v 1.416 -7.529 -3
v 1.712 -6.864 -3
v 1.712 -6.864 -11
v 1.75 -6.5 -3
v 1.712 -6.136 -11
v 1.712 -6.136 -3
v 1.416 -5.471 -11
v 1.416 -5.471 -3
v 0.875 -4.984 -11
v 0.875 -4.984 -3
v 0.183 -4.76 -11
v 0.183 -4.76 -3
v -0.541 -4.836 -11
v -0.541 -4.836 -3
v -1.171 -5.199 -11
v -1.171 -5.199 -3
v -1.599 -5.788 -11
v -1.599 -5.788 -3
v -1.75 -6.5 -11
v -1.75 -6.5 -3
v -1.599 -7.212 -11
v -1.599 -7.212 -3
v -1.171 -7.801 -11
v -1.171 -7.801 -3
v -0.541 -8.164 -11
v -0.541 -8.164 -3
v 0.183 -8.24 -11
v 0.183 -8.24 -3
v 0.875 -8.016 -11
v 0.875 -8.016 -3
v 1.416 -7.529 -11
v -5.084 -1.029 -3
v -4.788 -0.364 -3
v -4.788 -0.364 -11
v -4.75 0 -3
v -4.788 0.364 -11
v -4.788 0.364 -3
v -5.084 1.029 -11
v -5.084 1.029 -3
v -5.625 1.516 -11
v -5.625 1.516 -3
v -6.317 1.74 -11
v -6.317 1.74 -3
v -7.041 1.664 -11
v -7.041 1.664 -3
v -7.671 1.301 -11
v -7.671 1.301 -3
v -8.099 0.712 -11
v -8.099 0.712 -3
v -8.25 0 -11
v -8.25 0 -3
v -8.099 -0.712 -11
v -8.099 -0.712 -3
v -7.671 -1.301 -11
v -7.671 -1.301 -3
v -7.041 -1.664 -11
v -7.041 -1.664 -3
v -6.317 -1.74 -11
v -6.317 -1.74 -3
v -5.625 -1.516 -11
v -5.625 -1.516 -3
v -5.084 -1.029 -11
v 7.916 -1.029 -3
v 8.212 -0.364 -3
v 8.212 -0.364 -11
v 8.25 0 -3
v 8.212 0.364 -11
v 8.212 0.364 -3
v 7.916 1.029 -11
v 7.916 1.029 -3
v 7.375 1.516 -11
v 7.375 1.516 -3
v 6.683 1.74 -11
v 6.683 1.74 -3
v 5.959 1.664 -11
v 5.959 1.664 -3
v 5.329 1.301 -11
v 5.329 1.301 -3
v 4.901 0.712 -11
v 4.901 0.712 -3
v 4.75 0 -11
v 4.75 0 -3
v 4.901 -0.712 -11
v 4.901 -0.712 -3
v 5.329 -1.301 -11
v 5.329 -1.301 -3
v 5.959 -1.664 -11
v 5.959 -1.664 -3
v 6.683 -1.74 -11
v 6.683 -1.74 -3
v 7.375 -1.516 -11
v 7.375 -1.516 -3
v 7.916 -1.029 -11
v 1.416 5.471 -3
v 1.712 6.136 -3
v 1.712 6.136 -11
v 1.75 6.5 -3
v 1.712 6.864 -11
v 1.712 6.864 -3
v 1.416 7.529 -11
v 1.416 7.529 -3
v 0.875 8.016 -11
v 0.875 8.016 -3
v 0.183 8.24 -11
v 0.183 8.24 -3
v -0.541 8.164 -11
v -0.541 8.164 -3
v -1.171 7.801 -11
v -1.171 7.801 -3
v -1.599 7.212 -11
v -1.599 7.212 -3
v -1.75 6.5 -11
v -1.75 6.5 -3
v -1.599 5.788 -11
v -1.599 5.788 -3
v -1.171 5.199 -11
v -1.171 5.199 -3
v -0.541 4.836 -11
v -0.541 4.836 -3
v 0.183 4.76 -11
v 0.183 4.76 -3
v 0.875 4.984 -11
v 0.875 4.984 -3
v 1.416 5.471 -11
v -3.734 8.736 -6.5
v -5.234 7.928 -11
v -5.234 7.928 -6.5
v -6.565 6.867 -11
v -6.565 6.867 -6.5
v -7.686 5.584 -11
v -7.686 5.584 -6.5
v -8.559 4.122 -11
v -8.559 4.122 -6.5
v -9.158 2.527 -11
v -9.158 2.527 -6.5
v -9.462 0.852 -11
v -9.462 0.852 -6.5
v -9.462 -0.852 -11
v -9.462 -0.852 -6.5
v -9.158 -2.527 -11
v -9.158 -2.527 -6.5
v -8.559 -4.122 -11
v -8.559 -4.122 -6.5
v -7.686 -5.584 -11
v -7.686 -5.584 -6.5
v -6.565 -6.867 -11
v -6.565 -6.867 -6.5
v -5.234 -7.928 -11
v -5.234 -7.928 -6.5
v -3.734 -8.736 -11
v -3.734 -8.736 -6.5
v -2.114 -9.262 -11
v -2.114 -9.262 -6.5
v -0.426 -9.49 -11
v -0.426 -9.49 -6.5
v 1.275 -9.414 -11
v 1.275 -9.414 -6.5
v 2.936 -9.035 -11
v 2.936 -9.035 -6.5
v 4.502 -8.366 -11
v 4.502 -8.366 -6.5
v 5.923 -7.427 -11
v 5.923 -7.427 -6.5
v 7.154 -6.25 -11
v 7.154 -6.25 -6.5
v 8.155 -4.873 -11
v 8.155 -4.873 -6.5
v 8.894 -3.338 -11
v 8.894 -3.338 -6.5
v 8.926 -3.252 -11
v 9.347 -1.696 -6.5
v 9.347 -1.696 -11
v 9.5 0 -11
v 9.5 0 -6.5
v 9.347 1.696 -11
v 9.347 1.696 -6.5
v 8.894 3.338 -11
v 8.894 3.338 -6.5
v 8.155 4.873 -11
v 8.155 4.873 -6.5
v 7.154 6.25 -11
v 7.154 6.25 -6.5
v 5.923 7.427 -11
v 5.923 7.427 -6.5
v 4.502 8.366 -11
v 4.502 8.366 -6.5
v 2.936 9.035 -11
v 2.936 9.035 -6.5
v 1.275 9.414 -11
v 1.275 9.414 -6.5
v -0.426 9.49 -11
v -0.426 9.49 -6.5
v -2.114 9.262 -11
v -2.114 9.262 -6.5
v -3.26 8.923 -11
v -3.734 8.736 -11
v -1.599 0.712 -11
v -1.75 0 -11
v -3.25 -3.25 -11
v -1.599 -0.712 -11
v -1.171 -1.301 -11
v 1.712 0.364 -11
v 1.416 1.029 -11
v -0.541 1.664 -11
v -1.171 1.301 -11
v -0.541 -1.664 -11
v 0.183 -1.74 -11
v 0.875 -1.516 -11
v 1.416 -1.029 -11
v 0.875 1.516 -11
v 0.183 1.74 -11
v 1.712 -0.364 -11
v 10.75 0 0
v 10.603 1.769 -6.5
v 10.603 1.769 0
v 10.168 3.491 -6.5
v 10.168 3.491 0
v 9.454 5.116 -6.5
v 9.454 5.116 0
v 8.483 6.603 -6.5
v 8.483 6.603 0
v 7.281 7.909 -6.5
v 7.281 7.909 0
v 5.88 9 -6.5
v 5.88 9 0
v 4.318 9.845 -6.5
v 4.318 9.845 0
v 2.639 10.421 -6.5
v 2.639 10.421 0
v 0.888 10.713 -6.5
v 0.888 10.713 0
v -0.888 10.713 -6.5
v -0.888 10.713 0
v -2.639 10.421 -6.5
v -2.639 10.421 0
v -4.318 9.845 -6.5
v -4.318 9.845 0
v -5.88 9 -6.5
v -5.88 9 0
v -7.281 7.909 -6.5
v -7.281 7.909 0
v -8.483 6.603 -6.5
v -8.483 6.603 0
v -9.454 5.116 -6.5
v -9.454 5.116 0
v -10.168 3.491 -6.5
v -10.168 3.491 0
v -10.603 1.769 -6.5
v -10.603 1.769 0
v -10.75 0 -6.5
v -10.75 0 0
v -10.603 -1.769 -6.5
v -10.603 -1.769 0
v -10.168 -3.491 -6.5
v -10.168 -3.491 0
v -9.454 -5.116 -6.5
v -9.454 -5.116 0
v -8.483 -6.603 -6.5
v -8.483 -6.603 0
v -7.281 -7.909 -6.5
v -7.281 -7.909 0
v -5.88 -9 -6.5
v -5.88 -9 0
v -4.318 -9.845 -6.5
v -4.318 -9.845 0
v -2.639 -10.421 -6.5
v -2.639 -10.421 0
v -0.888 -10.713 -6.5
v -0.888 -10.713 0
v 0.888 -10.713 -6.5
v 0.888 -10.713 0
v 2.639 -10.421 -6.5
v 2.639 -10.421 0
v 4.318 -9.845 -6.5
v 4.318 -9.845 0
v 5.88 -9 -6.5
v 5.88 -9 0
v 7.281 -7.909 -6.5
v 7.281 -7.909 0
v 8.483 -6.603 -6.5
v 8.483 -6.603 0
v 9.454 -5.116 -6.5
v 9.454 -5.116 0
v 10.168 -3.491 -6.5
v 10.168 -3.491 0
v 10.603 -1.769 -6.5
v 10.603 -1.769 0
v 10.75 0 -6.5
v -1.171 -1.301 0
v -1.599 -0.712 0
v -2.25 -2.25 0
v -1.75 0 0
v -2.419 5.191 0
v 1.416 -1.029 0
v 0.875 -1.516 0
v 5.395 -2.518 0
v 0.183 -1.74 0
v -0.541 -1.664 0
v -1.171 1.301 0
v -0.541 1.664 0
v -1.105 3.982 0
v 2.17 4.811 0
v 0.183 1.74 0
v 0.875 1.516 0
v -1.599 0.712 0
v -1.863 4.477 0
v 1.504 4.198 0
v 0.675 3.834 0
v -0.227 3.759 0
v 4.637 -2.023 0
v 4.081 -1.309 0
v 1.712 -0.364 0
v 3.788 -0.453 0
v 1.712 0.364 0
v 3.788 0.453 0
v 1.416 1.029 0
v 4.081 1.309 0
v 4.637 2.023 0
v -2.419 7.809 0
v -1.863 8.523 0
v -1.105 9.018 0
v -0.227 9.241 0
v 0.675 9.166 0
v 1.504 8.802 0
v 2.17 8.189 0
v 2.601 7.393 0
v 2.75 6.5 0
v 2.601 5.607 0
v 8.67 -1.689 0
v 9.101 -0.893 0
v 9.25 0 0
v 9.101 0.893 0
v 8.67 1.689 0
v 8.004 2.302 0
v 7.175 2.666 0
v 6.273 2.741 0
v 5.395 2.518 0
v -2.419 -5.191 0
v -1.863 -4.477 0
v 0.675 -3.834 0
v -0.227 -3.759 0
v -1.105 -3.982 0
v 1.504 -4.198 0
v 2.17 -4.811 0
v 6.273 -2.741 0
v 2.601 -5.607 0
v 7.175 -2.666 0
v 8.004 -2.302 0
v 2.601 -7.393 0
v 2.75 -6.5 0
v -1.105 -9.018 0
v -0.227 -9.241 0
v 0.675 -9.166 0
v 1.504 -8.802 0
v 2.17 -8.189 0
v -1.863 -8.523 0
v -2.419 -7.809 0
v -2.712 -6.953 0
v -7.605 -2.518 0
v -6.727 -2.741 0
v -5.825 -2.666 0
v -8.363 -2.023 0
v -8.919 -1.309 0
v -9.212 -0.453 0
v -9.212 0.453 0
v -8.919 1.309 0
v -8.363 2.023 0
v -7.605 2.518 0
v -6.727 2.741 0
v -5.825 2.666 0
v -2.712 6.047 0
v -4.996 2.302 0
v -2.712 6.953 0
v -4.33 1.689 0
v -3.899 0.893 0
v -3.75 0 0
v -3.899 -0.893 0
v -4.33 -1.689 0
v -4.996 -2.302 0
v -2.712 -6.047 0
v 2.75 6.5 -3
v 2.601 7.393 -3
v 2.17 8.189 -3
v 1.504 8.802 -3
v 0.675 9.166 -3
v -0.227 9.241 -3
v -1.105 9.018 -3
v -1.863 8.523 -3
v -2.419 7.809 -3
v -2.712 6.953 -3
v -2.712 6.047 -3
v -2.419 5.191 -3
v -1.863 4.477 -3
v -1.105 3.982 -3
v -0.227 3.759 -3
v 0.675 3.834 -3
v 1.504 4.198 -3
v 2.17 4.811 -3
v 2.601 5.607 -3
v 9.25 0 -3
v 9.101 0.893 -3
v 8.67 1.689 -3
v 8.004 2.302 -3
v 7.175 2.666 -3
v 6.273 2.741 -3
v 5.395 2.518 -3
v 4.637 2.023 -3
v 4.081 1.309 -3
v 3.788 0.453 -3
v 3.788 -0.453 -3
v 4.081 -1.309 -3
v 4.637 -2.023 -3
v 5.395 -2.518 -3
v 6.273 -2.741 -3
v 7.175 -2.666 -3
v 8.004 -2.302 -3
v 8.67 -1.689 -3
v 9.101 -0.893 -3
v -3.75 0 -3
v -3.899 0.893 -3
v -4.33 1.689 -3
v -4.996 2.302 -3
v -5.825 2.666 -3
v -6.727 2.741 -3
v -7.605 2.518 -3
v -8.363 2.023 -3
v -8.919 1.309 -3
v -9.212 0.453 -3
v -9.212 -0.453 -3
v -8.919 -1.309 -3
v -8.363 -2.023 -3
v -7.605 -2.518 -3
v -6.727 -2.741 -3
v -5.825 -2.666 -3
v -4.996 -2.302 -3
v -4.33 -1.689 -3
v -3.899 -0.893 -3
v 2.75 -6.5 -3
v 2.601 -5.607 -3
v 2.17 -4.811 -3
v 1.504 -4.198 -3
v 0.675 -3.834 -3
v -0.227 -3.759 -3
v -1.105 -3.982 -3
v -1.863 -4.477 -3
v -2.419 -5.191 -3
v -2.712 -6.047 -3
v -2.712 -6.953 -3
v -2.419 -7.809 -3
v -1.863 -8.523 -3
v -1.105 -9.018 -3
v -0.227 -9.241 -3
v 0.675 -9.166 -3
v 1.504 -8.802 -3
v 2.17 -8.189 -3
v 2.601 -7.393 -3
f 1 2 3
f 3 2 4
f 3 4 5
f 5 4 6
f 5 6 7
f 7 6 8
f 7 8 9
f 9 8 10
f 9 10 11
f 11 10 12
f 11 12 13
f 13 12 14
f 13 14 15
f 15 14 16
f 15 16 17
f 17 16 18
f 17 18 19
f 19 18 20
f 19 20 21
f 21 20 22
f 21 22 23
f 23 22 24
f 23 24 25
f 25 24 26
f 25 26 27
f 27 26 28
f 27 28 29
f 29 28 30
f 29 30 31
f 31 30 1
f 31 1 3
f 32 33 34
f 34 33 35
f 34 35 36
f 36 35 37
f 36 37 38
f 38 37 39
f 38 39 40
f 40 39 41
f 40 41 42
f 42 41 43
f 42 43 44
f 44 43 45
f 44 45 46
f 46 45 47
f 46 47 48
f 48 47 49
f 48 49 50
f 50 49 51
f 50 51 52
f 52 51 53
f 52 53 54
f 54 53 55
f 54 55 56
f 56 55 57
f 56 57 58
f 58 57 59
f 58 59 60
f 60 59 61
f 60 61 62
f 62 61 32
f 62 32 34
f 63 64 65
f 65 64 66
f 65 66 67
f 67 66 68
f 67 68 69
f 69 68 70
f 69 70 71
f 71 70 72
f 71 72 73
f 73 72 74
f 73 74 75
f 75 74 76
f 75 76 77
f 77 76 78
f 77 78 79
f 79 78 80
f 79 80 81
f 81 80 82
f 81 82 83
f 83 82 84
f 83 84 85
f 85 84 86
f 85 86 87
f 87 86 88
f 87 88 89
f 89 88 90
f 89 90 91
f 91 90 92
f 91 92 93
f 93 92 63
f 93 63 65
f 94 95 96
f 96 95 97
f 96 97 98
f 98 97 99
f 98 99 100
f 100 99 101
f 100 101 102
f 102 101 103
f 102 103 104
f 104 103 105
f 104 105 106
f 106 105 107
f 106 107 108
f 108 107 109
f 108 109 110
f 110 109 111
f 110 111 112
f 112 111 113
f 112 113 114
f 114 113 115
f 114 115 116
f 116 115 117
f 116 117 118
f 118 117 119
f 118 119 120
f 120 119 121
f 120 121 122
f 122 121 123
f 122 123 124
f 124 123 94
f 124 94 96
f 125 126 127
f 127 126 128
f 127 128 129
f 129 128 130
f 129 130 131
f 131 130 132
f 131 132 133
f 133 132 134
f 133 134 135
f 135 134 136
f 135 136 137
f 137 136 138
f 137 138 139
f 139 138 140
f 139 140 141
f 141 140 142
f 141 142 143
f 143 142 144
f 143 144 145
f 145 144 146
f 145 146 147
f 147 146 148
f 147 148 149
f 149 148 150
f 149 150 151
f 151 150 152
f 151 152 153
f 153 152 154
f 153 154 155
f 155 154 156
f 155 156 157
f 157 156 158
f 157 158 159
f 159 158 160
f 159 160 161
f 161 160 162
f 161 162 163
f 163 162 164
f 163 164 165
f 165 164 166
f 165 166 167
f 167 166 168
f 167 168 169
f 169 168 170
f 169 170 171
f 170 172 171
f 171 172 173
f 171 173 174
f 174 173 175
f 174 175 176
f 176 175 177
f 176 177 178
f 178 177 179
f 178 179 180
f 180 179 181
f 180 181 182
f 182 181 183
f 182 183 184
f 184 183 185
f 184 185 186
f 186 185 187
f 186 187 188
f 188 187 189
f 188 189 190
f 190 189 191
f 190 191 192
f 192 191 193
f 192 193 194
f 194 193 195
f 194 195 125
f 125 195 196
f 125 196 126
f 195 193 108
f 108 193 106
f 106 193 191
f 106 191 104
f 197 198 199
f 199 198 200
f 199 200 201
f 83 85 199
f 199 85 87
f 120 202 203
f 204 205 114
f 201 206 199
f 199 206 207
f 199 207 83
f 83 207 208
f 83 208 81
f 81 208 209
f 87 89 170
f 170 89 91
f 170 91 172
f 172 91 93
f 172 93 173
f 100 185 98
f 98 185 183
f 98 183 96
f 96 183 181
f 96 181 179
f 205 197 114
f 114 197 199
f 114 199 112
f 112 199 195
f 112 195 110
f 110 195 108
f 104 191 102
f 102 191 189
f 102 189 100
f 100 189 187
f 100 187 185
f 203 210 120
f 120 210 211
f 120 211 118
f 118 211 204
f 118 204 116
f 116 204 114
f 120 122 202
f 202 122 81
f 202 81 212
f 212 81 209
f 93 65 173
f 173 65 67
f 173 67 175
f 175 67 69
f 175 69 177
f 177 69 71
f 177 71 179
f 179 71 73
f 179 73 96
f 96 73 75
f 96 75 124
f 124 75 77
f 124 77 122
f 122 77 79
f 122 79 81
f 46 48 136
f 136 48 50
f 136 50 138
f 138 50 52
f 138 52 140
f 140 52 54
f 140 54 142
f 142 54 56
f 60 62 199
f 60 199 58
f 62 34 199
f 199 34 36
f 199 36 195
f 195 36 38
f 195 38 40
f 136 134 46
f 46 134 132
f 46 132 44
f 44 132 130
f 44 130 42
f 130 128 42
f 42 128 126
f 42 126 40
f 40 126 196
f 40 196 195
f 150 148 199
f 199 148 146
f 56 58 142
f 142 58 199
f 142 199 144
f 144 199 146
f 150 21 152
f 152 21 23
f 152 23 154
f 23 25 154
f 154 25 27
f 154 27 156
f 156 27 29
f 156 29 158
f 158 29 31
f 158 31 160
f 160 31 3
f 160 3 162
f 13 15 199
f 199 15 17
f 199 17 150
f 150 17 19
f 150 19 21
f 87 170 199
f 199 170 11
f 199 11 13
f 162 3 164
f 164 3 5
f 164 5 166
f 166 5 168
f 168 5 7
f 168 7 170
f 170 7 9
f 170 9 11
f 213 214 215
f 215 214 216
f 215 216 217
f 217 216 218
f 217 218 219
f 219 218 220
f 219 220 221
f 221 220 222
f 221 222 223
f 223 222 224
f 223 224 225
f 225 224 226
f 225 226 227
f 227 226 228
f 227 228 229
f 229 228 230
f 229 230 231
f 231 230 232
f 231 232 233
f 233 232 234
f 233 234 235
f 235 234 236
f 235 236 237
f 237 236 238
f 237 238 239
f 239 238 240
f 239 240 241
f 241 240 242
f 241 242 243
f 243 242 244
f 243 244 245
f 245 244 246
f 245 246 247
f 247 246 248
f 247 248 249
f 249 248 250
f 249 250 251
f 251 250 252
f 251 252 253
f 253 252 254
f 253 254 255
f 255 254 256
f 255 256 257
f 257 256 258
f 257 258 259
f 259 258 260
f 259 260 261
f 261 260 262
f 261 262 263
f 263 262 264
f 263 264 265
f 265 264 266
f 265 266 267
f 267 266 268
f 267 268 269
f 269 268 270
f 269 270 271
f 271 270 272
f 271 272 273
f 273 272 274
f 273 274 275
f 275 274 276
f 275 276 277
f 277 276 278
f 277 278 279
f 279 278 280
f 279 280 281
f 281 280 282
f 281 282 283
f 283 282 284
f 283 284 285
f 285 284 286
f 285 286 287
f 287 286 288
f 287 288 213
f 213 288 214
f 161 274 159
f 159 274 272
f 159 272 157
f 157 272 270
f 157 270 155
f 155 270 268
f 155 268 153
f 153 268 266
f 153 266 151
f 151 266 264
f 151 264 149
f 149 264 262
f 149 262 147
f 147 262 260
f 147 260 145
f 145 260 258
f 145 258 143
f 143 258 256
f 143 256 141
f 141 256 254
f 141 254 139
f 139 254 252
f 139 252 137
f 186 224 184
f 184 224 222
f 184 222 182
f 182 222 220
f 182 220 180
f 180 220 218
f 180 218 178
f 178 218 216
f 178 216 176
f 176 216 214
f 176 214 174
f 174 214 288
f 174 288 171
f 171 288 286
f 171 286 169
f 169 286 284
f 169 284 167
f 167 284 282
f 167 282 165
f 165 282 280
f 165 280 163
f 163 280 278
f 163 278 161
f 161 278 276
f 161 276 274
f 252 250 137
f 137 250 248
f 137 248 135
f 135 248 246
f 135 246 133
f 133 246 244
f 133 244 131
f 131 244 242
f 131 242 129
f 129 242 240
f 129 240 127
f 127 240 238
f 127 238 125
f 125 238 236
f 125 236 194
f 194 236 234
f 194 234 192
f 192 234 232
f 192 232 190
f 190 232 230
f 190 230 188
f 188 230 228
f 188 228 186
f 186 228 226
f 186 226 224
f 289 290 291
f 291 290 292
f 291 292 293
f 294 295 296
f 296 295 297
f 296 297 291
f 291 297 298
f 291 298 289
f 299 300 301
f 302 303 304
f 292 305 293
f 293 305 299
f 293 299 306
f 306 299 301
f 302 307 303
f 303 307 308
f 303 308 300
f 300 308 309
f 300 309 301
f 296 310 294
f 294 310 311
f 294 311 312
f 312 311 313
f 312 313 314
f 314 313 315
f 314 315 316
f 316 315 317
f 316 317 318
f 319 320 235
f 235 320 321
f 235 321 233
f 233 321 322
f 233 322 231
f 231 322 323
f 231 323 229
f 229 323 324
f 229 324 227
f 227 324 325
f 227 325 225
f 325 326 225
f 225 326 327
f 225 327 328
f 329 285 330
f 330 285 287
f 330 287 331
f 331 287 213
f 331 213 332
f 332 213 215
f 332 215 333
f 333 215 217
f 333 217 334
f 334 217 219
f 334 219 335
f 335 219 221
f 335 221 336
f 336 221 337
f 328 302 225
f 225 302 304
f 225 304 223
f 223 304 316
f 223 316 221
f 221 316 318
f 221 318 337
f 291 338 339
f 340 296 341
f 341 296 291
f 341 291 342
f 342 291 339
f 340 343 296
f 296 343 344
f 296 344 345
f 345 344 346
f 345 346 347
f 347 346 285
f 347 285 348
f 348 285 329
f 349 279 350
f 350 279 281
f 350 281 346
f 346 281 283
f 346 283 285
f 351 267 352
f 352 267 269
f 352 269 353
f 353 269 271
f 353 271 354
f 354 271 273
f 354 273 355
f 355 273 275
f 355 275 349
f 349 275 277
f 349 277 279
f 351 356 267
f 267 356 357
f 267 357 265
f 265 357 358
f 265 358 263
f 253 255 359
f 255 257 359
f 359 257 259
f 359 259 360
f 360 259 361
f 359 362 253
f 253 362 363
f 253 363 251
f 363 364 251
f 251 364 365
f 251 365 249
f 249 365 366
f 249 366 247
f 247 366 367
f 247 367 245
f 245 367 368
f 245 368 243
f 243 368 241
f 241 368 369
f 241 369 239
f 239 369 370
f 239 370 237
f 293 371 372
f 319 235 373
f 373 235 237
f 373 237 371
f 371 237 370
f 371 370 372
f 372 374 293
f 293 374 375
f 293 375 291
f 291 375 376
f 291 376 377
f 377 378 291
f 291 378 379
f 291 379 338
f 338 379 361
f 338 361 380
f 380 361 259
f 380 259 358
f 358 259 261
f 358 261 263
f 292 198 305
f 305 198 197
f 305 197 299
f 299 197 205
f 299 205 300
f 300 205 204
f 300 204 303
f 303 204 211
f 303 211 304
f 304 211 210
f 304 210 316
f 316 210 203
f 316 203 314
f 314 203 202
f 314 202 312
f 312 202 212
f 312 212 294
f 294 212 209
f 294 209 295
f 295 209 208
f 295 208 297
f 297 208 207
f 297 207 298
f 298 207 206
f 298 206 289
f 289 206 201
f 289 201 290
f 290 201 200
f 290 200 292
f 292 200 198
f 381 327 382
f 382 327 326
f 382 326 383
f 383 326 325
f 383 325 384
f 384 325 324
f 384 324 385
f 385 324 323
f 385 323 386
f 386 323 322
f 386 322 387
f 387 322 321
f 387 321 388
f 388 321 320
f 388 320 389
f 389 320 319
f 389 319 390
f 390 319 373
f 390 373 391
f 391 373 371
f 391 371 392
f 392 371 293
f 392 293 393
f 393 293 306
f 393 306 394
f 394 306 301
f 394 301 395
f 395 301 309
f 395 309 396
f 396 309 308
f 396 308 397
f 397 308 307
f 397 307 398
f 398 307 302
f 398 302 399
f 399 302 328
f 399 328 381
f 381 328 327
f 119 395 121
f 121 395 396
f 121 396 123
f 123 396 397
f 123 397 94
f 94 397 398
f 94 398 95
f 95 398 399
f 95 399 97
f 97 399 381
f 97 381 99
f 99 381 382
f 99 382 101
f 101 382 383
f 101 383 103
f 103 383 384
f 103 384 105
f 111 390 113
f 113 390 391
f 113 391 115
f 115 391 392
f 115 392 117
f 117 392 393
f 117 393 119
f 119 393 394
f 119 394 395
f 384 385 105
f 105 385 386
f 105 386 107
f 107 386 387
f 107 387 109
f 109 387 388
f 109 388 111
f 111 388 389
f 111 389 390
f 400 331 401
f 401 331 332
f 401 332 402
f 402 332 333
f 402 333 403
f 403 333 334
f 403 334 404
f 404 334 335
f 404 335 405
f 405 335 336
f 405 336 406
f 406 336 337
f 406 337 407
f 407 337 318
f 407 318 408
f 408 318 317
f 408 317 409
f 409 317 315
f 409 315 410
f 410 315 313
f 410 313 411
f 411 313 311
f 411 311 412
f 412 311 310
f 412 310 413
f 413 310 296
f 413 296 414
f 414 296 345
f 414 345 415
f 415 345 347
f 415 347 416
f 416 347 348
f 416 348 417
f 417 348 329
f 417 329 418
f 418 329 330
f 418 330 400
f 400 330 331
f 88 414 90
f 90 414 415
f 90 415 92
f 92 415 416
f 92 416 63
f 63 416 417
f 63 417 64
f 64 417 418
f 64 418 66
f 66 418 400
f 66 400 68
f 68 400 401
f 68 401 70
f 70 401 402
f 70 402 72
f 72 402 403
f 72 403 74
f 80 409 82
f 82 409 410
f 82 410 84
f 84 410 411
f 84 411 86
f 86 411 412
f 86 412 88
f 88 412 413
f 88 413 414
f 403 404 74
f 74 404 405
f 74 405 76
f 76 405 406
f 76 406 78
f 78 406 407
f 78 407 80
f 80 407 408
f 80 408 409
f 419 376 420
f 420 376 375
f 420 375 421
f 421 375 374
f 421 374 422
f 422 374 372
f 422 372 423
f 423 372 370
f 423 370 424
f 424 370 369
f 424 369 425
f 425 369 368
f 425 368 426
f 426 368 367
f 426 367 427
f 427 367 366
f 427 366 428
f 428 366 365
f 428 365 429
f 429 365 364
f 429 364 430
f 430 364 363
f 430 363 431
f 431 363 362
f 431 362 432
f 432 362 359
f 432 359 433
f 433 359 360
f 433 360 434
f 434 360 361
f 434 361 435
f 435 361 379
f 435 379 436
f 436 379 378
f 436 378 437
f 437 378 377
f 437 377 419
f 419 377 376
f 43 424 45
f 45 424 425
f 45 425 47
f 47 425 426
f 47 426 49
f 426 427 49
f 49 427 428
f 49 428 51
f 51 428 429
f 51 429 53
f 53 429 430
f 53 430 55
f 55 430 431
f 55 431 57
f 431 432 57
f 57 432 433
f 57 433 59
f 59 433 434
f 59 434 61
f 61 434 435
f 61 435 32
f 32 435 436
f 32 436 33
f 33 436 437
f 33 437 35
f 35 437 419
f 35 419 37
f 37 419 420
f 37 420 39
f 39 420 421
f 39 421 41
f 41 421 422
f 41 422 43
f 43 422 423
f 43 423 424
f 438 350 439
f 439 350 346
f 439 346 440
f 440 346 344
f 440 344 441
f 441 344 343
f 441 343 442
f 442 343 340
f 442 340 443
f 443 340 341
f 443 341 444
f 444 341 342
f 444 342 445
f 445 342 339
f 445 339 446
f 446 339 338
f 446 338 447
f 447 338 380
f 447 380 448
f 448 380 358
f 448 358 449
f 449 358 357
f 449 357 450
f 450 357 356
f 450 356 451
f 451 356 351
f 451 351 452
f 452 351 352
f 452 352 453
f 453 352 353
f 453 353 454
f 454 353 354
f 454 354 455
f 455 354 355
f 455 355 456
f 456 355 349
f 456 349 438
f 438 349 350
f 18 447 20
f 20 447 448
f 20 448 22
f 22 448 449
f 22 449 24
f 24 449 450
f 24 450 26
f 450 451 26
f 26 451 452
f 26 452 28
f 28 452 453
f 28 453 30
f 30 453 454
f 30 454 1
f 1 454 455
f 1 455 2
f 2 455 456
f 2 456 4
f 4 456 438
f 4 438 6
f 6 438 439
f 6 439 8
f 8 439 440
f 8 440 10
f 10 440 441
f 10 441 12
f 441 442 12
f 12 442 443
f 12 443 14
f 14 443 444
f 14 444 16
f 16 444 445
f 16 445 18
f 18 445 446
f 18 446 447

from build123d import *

# Parameters (mm, degrees)
SKETCH1_R           = 9.5
BOSS_EXTRUDE1_DEPTH = 11
SKETCH1_3_R         = 10.75
SKETCH1_3_R_2       = 9.5
BOSS_EXTRUDE2_DEPTH = 6.5
SKETCH3_R           = 1.75
CUT_EXTRUDE2_DEPTH  = 19.764994005
SKETCH4_R           = 1.75
CUT_EXTRUDE4_DEPTH  = 19.764994005
CUT_EXTRUDE5_START  = -8
SKETCH3_4_R         = 2.75
SKETCH3_4_R_2       = 1.75
CUT_EXTRUDE5_DEPTH  = 3


with BuildPart() as part:
    # Sketch1 → Boss-Extrude1 (new body)
    with BuildSketch(Plane.XY):
        Circle(SKETCH1_R)
    extrude(amount=-BOSS_EXTRUDE1_DEPTH)

    # Sketch1<3> → Boss-Extrude2 (add)
    with BuildSketch(Plane.XY):
        Circle(SKETCH1_3_R)
        Circle(SKETCH1_3_R_2, mode=Mode.SUBTRACT)
    extrude(amount=-BOSS_EXTRUDE2_DEPTH)

    # Sketch3 → Cut-Extrude2 (cut, through all)
    with BuildSketch(Plane(origin=(0, 0, -11), x_dir=(-1, 0, 0), z_dir=(0, 0, -1))):
        with Locations((0, 6.5)):
            Circle(SKETCH3_R)
        with Locations((-6.5, 0)):
            Circle(SKETCH3_R)
        with Locations((6.5, 0)):
            Circle(SKETCH3_R)
        with Locations((0, -6.5)):
            Circle(SKETCH3_R)
    extrude(amount=-CUT_EXTRUDE2_DEPTH, mode=Mode.SUBTRACT)

    # Sketch4 → Cut-Extrude4 (cut, through all)
    with BuildSketch(Plane(origin=(0, 0, -11), x_dir=(-1, 0, 0), z_dir=(0, 0, -1))):
        Circle(SKETCH4_R)
    extrude(amount=-CUT_EXTRUDE4_DEPTH, mode=Mode.SUBTRACT)

    # Sketch3<4> → Cut-Extrude5 (cut)
    # profile 1 of 4: a face of its own
    with BuildSketch(Plane(origin=(0, 0, -11), x_dir=(-1, 0, 0), z_dir=(0, 0, -1)).offset(CUT_EXTRUDE5_START)):
        with Locations(Location((-6.5, 0, 0), (0, 0, 180))):
            Circle(SKETCH3_4_R)
        with Locations((-6.5, 0)):
            Circle(SKETCH3_4_R_2, mode=Mode.SUBTRACT)
    # profile 2 of 4: a face of its own
    with BuildSketch(Plane(origin=(0, 0, -11), x_dir=(-1, 0, 0), z_dir=(0, 0, -1)).offset(CUT_EXTRUDE5_START)):
        with Locations(Location((0, 6.5, 0), (0, 0, 180))):
            Circle(SKETCH3_4_R)
        with Locations((0, 6.5)):
            Circle(SKETCH3_4_R_2, mode=Mode.SUBTRACT)
    # profile 3 of 4: a face of its own
    with BuildSketch(Plane(origin=(0, 0, -11), x_dir=(-1, 0, 0), z_dir=(0, 0, -1)).offset(CUT_EXTRUDE5_START)):
        with Locations(Location((6.5, 0, 0), (0, 0, 180))):
            Circle(SKETCH3_4_R)
        with Locations((6.5, 0)):
            Circle(SKETCH3_4_R_2, mode=Mode.SUBTRACT)
    # profile 4 of 4: a face of its own
    with BuildSketch(Plane(origin=(0, 0, -11), x_dir=(-1, 0, 0), z_dir=(0, 0, -1)).offset(CUT_EXTRUDE5_START)):
        with Locations(Location((0, -6.5, 0), (0, 0, 180))):
            Circle(SKETCH3_4_R)
        with Locations((0, -6.5)):
            Circle(SKETCH3_4_R_2, mode=Mode.SUBTRACT)
    extrude(amount=-CUT_EXTRUDE5_DEPTH, mode=Mode.SUBTRACT)


solid = part.part
